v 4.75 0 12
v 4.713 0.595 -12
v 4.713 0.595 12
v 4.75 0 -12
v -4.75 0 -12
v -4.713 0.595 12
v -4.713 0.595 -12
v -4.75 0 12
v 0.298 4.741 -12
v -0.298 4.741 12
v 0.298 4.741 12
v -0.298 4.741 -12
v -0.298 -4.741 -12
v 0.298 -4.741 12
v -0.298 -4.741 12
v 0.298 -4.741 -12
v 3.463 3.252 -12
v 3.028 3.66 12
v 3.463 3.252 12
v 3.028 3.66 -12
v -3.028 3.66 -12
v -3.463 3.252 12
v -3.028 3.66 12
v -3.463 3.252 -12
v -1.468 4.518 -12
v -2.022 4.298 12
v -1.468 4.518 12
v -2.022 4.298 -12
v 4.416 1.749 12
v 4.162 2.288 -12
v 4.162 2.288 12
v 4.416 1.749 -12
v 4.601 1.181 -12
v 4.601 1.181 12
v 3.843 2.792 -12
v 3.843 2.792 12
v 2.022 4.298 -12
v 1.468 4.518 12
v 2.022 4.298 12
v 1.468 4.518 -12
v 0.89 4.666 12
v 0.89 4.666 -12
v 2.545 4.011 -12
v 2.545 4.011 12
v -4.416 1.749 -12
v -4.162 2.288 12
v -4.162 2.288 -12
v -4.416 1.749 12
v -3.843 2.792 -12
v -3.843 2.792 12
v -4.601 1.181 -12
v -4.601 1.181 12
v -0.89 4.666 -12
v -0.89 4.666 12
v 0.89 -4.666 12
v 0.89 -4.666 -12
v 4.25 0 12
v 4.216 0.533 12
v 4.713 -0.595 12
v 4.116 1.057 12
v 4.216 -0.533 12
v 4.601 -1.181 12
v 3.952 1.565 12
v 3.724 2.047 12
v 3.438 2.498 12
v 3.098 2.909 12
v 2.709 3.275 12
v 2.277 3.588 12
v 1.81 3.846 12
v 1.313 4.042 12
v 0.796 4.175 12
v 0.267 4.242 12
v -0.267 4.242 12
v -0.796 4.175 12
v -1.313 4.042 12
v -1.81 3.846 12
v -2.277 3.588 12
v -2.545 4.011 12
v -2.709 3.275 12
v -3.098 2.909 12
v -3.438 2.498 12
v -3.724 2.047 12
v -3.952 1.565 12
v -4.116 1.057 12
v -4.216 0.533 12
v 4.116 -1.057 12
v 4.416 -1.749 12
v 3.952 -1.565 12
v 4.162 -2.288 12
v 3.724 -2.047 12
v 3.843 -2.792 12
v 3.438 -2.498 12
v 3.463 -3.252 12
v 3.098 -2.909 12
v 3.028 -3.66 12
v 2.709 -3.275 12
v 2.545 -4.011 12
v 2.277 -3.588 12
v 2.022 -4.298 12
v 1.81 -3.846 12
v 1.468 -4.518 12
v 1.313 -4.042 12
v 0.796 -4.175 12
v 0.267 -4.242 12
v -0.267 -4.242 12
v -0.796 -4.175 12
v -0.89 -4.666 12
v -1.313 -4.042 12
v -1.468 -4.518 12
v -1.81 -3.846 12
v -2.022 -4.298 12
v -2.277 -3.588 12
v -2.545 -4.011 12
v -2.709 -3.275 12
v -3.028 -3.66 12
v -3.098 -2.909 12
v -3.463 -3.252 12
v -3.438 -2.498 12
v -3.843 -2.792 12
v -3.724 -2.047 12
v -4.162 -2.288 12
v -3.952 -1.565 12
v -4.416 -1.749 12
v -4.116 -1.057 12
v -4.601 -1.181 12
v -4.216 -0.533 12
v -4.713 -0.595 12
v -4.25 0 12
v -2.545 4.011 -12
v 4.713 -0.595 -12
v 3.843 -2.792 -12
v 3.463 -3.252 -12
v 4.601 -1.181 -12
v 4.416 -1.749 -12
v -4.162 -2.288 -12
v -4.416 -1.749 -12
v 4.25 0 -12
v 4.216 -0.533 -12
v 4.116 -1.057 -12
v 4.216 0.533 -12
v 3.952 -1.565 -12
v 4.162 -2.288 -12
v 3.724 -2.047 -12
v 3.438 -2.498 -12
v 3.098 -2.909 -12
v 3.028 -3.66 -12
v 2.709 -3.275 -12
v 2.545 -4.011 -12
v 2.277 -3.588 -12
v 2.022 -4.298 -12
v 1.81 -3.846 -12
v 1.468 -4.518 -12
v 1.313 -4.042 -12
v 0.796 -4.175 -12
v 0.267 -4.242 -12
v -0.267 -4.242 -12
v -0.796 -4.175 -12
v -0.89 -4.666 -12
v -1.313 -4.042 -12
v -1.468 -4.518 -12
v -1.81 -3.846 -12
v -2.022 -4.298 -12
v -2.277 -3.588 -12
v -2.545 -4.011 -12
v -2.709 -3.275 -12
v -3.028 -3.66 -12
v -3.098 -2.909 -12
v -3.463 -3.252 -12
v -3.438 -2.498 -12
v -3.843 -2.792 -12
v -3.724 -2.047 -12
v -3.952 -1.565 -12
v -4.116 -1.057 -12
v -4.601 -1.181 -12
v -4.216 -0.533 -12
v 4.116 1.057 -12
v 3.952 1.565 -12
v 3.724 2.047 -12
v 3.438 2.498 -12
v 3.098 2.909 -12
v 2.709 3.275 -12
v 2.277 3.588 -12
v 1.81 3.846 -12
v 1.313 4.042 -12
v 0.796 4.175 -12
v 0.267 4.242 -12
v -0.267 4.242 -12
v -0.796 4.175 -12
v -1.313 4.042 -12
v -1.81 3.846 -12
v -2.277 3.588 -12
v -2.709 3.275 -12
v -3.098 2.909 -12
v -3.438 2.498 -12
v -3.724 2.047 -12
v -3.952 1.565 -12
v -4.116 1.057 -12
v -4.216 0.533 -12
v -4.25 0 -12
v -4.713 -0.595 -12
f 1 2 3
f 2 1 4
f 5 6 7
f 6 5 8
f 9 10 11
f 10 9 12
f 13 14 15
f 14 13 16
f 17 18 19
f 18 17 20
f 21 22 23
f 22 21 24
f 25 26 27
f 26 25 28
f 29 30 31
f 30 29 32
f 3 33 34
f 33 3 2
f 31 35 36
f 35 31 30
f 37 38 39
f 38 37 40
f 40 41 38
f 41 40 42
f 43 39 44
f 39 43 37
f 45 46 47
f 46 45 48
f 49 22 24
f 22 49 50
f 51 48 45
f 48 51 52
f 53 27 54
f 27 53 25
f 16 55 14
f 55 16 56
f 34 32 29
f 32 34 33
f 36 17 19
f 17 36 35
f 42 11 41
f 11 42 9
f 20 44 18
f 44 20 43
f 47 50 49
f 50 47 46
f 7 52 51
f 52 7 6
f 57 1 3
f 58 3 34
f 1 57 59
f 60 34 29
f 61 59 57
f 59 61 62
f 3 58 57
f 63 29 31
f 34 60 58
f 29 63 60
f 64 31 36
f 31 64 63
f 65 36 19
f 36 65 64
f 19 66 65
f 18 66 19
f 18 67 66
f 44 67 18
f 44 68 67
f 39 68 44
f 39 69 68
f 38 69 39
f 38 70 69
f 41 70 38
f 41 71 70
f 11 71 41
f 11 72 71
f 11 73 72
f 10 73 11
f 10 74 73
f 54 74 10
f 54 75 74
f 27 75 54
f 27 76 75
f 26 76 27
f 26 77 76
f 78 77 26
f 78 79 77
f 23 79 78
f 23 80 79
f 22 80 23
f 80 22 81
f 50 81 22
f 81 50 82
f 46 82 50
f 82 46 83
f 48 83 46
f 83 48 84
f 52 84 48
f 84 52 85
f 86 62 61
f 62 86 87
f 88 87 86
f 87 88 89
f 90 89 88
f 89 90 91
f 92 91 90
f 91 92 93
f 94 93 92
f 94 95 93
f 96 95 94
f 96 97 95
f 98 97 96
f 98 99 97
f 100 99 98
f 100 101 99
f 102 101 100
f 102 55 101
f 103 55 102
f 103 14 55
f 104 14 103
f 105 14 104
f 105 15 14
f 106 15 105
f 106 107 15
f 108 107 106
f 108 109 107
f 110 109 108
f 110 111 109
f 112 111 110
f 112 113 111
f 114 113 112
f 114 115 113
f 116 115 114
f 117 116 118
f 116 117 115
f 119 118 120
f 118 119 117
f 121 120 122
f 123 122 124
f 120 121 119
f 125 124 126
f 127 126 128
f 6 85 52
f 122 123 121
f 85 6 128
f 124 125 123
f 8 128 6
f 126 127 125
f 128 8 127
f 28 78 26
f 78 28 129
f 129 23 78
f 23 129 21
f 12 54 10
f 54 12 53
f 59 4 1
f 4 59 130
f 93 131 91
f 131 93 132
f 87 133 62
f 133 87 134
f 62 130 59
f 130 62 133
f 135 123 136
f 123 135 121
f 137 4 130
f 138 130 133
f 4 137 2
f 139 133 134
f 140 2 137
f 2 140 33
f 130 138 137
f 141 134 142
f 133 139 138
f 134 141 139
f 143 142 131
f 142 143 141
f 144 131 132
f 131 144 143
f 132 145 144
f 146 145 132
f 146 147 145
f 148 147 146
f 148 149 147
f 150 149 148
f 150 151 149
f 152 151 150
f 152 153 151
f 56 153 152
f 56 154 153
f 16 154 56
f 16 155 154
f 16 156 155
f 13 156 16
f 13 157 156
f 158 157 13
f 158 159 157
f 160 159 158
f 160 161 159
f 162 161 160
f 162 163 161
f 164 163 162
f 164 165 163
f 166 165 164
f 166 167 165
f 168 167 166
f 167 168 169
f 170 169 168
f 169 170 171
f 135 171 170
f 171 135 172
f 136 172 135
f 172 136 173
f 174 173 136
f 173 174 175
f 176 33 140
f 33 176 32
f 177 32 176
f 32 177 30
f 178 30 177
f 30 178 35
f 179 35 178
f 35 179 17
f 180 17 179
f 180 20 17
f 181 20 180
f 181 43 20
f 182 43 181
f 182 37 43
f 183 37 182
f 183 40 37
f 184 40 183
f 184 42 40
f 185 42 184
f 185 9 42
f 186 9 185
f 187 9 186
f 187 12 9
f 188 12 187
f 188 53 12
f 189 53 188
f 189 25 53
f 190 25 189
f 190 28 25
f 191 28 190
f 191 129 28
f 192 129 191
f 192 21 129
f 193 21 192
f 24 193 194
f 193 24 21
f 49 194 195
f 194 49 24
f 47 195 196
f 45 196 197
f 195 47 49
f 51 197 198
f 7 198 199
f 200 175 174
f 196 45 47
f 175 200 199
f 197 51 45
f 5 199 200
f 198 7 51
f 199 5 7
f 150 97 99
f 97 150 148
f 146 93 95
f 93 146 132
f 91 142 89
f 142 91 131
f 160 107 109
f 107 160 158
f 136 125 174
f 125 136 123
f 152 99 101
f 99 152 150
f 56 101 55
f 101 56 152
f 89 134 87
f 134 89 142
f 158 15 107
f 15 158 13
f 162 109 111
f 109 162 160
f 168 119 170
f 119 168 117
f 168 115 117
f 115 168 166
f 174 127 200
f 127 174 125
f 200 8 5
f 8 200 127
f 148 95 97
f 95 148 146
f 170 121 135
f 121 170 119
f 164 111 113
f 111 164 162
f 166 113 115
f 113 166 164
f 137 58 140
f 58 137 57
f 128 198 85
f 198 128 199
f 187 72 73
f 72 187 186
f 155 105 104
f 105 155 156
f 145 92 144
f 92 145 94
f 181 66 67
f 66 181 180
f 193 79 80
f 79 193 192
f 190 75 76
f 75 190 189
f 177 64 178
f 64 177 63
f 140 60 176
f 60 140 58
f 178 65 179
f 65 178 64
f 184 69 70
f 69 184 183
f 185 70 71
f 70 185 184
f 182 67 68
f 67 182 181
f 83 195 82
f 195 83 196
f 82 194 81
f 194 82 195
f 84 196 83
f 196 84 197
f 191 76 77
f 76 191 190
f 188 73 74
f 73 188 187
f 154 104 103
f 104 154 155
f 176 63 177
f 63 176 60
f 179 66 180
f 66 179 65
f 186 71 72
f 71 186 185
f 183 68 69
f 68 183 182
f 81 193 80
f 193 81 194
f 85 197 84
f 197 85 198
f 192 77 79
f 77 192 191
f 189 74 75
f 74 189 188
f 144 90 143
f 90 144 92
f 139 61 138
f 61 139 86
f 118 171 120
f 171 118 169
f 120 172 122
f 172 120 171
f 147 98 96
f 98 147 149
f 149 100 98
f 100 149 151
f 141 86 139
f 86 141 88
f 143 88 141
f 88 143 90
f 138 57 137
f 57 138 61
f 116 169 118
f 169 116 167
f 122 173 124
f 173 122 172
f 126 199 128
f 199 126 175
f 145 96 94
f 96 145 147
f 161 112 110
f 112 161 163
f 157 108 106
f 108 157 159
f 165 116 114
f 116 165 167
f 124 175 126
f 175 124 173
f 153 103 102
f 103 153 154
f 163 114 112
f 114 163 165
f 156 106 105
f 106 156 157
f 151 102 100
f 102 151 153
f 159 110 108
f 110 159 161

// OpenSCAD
$fn = 50;


difference() {
	union() {
		translate(v = [0, 0, -12.0000000000]) {
			cylinder(h = 24, r = 4.7500000000);
		}
	}
	union() {
		translate(v = [0, 0, -100.0000000000]) {
			cylinder(h = 200, r = 4.2500000000);
		}
	}
}
